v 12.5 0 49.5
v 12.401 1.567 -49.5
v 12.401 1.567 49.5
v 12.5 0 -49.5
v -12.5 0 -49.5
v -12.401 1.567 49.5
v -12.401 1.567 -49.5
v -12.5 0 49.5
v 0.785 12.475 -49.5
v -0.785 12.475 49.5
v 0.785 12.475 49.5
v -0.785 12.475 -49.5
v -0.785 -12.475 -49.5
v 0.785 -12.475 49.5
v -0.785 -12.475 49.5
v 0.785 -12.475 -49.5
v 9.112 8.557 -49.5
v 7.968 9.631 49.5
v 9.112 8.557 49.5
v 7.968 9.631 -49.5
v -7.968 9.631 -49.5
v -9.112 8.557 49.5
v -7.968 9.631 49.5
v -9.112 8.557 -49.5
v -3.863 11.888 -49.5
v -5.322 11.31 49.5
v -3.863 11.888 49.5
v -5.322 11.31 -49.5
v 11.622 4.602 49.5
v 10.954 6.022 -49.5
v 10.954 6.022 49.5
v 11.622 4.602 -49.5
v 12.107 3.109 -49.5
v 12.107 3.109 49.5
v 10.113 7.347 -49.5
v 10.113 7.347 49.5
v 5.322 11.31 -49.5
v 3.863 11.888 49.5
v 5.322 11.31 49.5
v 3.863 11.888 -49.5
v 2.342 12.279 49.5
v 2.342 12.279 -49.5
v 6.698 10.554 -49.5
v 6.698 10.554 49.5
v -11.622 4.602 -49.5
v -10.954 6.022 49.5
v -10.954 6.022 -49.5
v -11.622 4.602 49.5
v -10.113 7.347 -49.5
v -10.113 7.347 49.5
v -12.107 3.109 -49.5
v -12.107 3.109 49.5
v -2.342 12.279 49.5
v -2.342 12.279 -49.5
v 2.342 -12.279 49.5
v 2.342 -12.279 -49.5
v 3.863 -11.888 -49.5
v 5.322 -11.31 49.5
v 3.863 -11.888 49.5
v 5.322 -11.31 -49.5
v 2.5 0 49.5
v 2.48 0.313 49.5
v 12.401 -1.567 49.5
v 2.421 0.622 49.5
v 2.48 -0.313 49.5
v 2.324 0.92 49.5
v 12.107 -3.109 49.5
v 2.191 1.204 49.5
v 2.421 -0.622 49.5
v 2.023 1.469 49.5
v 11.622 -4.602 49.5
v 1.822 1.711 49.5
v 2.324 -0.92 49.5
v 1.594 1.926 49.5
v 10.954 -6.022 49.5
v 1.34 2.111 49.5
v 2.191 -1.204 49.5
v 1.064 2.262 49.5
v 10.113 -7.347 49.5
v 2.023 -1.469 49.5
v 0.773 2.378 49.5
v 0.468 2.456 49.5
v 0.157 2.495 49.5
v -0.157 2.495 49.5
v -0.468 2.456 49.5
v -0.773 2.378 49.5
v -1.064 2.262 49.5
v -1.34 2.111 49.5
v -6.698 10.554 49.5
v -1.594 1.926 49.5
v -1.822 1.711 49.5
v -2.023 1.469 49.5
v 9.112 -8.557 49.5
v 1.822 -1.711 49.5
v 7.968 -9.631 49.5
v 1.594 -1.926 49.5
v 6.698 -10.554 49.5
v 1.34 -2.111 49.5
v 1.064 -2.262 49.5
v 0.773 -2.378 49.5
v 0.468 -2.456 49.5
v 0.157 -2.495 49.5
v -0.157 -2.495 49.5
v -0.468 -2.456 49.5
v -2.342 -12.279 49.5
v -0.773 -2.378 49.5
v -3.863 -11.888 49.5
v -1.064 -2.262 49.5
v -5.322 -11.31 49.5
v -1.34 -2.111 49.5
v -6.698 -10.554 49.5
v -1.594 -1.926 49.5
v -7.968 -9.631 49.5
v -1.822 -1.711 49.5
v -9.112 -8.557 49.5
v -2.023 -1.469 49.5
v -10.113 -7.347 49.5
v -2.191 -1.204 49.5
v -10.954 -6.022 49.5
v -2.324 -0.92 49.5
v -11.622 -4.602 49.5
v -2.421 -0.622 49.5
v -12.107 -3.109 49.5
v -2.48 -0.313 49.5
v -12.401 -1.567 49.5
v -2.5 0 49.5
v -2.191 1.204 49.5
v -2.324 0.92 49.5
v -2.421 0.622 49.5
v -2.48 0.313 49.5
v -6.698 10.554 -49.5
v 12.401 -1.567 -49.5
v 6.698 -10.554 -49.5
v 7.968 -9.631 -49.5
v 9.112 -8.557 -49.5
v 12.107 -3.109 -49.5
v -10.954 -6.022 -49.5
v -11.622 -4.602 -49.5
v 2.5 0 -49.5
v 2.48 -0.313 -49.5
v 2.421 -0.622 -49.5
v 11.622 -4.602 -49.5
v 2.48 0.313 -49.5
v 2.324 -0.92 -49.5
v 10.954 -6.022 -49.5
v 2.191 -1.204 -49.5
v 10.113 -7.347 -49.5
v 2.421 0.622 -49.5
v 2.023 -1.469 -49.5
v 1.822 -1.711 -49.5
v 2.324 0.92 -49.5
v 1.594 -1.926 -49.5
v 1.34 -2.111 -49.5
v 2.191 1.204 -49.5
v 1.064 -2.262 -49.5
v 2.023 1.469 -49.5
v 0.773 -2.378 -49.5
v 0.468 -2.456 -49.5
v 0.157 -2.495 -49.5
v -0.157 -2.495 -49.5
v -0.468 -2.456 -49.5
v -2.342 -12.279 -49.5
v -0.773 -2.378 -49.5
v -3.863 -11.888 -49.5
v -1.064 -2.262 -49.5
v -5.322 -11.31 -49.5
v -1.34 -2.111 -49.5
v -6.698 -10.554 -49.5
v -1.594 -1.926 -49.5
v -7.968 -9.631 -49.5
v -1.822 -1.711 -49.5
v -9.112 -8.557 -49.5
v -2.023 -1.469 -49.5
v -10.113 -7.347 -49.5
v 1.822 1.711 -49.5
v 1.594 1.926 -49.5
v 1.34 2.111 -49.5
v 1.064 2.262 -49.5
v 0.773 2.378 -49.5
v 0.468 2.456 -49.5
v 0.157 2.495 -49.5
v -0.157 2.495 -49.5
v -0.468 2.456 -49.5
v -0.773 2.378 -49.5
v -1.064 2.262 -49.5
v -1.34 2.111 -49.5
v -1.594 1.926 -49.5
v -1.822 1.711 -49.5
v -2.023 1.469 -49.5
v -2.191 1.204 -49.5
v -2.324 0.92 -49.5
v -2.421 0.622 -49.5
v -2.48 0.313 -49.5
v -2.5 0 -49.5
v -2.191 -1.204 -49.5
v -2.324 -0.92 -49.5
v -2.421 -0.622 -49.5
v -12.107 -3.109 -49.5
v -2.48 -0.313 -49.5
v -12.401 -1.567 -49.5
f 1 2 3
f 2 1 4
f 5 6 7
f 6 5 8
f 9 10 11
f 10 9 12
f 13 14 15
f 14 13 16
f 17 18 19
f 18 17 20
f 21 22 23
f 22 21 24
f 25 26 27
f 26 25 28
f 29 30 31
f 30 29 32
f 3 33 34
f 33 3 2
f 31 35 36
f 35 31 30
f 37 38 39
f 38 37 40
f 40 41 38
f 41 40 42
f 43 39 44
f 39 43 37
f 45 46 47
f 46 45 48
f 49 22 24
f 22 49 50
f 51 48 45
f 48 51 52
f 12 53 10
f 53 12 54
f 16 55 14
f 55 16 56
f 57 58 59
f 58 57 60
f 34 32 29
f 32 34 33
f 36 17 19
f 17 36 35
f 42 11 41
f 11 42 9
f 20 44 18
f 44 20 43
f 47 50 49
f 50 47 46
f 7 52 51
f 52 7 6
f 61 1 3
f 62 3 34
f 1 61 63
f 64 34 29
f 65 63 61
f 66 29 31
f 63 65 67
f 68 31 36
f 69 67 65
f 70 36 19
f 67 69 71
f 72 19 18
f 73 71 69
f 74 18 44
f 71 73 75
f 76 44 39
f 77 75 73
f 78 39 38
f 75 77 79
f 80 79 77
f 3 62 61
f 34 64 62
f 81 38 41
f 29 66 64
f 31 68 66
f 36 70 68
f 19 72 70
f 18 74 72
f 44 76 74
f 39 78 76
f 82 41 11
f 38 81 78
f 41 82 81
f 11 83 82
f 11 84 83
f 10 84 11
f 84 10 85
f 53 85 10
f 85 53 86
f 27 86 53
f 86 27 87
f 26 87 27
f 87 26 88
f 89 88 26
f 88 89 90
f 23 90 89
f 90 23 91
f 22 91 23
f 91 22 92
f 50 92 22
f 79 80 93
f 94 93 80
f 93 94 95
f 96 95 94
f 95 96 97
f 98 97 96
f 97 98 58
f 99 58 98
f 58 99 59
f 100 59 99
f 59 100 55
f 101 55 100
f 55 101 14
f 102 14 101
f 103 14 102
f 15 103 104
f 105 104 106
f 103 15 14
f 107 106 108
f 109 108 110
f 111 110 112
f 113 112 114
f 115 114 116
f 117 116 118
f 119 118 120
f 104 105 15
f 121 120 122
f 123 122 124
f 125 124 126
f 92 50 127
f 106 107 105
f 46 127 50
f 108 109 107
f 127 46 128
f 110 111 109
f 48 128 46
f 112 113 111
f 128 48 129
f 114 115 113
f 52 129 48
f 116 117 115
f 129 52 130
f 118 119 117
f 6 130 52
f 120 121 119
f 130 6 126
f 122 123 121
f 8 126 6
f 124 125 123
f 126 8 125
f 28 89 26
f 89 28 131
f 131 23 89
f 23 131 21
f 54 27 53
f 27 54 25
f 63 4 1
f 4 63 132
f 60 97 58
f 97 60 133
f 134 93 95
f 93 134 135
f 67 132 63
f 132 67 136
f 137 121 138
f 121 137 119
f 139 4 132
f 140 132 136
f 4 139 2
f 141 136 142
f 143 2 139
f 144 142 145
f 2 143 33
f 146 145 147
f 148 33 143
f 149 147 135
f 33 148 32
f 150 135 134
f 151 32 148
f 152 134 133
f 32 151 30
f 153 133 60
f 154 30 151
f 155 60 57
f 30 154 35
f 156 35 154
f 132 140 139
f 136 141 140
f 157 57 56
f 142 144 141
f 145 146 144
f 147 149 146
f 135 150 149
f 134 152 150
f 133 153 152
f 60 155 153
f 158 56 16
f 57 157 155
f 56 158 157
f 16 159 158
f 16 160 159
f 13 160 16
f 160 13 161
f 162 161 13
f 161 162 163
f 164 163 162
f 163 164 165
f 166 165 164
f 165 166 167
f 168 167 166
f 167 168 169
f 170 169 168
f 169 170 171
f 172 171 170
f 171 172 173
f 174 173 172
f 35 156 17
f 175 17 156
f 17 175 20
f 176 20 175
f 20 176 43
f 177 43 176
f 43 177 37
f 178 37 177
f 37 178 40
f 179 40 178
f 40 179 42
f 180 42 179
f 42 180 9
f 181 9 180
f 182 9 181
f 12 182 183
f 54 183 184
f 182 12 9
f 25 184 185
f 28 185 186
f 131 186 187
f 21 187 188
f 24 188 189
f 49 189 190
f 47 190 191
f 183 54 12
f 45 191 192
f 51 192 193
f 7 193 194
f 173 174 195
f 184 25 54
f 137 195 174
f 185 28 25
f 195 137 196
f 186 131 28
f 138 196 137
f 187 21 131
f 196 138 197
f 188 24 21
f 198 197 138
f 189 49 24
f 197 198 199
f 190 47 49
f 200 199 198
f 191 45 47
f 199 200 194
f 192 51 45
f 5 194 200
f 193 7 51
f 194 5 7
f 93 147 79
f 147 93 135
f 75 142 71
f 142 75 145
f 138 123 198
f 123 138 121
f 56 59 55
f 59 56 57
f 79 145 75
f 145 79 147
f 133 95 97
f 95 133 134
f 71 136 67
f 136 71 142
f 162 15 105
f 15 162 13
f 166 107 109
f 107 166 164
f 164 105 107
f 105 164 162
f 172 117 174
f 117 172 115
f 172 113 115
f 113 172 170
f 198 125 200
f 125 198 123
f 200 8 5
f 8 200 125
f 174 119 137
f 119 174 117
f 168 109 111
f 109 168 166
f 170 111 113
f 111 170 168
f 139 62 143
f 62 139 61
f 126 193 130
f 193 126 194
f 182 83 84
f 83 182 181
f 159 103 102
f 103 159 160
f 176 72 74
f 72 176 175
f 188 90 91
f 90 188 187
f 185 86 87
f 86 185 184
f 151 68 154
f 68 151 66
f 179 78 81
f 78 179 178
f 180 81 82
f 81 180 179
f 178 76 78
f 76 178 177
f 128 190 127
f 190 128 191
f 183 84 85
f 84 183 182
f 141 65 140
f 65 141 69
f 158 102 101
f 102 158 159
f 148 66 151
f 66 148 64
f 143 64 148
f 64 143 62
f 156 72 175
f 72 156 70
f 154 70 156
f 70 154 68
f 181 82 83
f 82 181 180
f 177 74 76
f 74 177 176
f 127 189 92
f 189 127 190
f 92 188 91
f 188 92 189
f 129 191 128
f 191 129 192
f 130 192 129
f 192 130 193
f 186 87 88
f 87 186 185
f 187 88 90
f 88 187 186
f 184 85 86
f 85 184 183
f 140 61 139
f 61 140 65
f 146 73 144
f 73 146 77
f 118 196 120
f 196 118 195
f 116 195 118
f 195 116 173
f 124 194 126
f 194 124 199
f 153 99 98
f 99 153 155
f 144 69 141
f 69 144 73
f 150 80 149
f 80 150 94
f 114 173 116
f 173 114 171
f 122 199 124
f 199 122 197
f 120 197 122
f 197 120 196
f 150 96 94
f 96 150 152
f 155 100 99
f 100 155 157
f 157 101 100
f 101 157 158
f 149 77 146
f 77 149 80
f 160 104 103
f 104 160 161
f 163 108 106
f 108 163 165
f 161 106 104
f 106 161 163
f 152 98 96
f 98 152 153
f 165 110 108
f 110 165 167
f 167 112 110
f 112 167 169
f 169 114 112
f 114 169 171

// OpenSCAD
$fn = 50;


difference() {
	union() {
		translate(v = [0, 0, -49.5000000000]) {
			cylinder(h = 99, r = 12.5000000000);
		}
	}
	union() {
		translate(v = [0, 0, -100.0000000000]) {
			cylinder(h = 200, r = 2.5000000000);
		}
	}
}
